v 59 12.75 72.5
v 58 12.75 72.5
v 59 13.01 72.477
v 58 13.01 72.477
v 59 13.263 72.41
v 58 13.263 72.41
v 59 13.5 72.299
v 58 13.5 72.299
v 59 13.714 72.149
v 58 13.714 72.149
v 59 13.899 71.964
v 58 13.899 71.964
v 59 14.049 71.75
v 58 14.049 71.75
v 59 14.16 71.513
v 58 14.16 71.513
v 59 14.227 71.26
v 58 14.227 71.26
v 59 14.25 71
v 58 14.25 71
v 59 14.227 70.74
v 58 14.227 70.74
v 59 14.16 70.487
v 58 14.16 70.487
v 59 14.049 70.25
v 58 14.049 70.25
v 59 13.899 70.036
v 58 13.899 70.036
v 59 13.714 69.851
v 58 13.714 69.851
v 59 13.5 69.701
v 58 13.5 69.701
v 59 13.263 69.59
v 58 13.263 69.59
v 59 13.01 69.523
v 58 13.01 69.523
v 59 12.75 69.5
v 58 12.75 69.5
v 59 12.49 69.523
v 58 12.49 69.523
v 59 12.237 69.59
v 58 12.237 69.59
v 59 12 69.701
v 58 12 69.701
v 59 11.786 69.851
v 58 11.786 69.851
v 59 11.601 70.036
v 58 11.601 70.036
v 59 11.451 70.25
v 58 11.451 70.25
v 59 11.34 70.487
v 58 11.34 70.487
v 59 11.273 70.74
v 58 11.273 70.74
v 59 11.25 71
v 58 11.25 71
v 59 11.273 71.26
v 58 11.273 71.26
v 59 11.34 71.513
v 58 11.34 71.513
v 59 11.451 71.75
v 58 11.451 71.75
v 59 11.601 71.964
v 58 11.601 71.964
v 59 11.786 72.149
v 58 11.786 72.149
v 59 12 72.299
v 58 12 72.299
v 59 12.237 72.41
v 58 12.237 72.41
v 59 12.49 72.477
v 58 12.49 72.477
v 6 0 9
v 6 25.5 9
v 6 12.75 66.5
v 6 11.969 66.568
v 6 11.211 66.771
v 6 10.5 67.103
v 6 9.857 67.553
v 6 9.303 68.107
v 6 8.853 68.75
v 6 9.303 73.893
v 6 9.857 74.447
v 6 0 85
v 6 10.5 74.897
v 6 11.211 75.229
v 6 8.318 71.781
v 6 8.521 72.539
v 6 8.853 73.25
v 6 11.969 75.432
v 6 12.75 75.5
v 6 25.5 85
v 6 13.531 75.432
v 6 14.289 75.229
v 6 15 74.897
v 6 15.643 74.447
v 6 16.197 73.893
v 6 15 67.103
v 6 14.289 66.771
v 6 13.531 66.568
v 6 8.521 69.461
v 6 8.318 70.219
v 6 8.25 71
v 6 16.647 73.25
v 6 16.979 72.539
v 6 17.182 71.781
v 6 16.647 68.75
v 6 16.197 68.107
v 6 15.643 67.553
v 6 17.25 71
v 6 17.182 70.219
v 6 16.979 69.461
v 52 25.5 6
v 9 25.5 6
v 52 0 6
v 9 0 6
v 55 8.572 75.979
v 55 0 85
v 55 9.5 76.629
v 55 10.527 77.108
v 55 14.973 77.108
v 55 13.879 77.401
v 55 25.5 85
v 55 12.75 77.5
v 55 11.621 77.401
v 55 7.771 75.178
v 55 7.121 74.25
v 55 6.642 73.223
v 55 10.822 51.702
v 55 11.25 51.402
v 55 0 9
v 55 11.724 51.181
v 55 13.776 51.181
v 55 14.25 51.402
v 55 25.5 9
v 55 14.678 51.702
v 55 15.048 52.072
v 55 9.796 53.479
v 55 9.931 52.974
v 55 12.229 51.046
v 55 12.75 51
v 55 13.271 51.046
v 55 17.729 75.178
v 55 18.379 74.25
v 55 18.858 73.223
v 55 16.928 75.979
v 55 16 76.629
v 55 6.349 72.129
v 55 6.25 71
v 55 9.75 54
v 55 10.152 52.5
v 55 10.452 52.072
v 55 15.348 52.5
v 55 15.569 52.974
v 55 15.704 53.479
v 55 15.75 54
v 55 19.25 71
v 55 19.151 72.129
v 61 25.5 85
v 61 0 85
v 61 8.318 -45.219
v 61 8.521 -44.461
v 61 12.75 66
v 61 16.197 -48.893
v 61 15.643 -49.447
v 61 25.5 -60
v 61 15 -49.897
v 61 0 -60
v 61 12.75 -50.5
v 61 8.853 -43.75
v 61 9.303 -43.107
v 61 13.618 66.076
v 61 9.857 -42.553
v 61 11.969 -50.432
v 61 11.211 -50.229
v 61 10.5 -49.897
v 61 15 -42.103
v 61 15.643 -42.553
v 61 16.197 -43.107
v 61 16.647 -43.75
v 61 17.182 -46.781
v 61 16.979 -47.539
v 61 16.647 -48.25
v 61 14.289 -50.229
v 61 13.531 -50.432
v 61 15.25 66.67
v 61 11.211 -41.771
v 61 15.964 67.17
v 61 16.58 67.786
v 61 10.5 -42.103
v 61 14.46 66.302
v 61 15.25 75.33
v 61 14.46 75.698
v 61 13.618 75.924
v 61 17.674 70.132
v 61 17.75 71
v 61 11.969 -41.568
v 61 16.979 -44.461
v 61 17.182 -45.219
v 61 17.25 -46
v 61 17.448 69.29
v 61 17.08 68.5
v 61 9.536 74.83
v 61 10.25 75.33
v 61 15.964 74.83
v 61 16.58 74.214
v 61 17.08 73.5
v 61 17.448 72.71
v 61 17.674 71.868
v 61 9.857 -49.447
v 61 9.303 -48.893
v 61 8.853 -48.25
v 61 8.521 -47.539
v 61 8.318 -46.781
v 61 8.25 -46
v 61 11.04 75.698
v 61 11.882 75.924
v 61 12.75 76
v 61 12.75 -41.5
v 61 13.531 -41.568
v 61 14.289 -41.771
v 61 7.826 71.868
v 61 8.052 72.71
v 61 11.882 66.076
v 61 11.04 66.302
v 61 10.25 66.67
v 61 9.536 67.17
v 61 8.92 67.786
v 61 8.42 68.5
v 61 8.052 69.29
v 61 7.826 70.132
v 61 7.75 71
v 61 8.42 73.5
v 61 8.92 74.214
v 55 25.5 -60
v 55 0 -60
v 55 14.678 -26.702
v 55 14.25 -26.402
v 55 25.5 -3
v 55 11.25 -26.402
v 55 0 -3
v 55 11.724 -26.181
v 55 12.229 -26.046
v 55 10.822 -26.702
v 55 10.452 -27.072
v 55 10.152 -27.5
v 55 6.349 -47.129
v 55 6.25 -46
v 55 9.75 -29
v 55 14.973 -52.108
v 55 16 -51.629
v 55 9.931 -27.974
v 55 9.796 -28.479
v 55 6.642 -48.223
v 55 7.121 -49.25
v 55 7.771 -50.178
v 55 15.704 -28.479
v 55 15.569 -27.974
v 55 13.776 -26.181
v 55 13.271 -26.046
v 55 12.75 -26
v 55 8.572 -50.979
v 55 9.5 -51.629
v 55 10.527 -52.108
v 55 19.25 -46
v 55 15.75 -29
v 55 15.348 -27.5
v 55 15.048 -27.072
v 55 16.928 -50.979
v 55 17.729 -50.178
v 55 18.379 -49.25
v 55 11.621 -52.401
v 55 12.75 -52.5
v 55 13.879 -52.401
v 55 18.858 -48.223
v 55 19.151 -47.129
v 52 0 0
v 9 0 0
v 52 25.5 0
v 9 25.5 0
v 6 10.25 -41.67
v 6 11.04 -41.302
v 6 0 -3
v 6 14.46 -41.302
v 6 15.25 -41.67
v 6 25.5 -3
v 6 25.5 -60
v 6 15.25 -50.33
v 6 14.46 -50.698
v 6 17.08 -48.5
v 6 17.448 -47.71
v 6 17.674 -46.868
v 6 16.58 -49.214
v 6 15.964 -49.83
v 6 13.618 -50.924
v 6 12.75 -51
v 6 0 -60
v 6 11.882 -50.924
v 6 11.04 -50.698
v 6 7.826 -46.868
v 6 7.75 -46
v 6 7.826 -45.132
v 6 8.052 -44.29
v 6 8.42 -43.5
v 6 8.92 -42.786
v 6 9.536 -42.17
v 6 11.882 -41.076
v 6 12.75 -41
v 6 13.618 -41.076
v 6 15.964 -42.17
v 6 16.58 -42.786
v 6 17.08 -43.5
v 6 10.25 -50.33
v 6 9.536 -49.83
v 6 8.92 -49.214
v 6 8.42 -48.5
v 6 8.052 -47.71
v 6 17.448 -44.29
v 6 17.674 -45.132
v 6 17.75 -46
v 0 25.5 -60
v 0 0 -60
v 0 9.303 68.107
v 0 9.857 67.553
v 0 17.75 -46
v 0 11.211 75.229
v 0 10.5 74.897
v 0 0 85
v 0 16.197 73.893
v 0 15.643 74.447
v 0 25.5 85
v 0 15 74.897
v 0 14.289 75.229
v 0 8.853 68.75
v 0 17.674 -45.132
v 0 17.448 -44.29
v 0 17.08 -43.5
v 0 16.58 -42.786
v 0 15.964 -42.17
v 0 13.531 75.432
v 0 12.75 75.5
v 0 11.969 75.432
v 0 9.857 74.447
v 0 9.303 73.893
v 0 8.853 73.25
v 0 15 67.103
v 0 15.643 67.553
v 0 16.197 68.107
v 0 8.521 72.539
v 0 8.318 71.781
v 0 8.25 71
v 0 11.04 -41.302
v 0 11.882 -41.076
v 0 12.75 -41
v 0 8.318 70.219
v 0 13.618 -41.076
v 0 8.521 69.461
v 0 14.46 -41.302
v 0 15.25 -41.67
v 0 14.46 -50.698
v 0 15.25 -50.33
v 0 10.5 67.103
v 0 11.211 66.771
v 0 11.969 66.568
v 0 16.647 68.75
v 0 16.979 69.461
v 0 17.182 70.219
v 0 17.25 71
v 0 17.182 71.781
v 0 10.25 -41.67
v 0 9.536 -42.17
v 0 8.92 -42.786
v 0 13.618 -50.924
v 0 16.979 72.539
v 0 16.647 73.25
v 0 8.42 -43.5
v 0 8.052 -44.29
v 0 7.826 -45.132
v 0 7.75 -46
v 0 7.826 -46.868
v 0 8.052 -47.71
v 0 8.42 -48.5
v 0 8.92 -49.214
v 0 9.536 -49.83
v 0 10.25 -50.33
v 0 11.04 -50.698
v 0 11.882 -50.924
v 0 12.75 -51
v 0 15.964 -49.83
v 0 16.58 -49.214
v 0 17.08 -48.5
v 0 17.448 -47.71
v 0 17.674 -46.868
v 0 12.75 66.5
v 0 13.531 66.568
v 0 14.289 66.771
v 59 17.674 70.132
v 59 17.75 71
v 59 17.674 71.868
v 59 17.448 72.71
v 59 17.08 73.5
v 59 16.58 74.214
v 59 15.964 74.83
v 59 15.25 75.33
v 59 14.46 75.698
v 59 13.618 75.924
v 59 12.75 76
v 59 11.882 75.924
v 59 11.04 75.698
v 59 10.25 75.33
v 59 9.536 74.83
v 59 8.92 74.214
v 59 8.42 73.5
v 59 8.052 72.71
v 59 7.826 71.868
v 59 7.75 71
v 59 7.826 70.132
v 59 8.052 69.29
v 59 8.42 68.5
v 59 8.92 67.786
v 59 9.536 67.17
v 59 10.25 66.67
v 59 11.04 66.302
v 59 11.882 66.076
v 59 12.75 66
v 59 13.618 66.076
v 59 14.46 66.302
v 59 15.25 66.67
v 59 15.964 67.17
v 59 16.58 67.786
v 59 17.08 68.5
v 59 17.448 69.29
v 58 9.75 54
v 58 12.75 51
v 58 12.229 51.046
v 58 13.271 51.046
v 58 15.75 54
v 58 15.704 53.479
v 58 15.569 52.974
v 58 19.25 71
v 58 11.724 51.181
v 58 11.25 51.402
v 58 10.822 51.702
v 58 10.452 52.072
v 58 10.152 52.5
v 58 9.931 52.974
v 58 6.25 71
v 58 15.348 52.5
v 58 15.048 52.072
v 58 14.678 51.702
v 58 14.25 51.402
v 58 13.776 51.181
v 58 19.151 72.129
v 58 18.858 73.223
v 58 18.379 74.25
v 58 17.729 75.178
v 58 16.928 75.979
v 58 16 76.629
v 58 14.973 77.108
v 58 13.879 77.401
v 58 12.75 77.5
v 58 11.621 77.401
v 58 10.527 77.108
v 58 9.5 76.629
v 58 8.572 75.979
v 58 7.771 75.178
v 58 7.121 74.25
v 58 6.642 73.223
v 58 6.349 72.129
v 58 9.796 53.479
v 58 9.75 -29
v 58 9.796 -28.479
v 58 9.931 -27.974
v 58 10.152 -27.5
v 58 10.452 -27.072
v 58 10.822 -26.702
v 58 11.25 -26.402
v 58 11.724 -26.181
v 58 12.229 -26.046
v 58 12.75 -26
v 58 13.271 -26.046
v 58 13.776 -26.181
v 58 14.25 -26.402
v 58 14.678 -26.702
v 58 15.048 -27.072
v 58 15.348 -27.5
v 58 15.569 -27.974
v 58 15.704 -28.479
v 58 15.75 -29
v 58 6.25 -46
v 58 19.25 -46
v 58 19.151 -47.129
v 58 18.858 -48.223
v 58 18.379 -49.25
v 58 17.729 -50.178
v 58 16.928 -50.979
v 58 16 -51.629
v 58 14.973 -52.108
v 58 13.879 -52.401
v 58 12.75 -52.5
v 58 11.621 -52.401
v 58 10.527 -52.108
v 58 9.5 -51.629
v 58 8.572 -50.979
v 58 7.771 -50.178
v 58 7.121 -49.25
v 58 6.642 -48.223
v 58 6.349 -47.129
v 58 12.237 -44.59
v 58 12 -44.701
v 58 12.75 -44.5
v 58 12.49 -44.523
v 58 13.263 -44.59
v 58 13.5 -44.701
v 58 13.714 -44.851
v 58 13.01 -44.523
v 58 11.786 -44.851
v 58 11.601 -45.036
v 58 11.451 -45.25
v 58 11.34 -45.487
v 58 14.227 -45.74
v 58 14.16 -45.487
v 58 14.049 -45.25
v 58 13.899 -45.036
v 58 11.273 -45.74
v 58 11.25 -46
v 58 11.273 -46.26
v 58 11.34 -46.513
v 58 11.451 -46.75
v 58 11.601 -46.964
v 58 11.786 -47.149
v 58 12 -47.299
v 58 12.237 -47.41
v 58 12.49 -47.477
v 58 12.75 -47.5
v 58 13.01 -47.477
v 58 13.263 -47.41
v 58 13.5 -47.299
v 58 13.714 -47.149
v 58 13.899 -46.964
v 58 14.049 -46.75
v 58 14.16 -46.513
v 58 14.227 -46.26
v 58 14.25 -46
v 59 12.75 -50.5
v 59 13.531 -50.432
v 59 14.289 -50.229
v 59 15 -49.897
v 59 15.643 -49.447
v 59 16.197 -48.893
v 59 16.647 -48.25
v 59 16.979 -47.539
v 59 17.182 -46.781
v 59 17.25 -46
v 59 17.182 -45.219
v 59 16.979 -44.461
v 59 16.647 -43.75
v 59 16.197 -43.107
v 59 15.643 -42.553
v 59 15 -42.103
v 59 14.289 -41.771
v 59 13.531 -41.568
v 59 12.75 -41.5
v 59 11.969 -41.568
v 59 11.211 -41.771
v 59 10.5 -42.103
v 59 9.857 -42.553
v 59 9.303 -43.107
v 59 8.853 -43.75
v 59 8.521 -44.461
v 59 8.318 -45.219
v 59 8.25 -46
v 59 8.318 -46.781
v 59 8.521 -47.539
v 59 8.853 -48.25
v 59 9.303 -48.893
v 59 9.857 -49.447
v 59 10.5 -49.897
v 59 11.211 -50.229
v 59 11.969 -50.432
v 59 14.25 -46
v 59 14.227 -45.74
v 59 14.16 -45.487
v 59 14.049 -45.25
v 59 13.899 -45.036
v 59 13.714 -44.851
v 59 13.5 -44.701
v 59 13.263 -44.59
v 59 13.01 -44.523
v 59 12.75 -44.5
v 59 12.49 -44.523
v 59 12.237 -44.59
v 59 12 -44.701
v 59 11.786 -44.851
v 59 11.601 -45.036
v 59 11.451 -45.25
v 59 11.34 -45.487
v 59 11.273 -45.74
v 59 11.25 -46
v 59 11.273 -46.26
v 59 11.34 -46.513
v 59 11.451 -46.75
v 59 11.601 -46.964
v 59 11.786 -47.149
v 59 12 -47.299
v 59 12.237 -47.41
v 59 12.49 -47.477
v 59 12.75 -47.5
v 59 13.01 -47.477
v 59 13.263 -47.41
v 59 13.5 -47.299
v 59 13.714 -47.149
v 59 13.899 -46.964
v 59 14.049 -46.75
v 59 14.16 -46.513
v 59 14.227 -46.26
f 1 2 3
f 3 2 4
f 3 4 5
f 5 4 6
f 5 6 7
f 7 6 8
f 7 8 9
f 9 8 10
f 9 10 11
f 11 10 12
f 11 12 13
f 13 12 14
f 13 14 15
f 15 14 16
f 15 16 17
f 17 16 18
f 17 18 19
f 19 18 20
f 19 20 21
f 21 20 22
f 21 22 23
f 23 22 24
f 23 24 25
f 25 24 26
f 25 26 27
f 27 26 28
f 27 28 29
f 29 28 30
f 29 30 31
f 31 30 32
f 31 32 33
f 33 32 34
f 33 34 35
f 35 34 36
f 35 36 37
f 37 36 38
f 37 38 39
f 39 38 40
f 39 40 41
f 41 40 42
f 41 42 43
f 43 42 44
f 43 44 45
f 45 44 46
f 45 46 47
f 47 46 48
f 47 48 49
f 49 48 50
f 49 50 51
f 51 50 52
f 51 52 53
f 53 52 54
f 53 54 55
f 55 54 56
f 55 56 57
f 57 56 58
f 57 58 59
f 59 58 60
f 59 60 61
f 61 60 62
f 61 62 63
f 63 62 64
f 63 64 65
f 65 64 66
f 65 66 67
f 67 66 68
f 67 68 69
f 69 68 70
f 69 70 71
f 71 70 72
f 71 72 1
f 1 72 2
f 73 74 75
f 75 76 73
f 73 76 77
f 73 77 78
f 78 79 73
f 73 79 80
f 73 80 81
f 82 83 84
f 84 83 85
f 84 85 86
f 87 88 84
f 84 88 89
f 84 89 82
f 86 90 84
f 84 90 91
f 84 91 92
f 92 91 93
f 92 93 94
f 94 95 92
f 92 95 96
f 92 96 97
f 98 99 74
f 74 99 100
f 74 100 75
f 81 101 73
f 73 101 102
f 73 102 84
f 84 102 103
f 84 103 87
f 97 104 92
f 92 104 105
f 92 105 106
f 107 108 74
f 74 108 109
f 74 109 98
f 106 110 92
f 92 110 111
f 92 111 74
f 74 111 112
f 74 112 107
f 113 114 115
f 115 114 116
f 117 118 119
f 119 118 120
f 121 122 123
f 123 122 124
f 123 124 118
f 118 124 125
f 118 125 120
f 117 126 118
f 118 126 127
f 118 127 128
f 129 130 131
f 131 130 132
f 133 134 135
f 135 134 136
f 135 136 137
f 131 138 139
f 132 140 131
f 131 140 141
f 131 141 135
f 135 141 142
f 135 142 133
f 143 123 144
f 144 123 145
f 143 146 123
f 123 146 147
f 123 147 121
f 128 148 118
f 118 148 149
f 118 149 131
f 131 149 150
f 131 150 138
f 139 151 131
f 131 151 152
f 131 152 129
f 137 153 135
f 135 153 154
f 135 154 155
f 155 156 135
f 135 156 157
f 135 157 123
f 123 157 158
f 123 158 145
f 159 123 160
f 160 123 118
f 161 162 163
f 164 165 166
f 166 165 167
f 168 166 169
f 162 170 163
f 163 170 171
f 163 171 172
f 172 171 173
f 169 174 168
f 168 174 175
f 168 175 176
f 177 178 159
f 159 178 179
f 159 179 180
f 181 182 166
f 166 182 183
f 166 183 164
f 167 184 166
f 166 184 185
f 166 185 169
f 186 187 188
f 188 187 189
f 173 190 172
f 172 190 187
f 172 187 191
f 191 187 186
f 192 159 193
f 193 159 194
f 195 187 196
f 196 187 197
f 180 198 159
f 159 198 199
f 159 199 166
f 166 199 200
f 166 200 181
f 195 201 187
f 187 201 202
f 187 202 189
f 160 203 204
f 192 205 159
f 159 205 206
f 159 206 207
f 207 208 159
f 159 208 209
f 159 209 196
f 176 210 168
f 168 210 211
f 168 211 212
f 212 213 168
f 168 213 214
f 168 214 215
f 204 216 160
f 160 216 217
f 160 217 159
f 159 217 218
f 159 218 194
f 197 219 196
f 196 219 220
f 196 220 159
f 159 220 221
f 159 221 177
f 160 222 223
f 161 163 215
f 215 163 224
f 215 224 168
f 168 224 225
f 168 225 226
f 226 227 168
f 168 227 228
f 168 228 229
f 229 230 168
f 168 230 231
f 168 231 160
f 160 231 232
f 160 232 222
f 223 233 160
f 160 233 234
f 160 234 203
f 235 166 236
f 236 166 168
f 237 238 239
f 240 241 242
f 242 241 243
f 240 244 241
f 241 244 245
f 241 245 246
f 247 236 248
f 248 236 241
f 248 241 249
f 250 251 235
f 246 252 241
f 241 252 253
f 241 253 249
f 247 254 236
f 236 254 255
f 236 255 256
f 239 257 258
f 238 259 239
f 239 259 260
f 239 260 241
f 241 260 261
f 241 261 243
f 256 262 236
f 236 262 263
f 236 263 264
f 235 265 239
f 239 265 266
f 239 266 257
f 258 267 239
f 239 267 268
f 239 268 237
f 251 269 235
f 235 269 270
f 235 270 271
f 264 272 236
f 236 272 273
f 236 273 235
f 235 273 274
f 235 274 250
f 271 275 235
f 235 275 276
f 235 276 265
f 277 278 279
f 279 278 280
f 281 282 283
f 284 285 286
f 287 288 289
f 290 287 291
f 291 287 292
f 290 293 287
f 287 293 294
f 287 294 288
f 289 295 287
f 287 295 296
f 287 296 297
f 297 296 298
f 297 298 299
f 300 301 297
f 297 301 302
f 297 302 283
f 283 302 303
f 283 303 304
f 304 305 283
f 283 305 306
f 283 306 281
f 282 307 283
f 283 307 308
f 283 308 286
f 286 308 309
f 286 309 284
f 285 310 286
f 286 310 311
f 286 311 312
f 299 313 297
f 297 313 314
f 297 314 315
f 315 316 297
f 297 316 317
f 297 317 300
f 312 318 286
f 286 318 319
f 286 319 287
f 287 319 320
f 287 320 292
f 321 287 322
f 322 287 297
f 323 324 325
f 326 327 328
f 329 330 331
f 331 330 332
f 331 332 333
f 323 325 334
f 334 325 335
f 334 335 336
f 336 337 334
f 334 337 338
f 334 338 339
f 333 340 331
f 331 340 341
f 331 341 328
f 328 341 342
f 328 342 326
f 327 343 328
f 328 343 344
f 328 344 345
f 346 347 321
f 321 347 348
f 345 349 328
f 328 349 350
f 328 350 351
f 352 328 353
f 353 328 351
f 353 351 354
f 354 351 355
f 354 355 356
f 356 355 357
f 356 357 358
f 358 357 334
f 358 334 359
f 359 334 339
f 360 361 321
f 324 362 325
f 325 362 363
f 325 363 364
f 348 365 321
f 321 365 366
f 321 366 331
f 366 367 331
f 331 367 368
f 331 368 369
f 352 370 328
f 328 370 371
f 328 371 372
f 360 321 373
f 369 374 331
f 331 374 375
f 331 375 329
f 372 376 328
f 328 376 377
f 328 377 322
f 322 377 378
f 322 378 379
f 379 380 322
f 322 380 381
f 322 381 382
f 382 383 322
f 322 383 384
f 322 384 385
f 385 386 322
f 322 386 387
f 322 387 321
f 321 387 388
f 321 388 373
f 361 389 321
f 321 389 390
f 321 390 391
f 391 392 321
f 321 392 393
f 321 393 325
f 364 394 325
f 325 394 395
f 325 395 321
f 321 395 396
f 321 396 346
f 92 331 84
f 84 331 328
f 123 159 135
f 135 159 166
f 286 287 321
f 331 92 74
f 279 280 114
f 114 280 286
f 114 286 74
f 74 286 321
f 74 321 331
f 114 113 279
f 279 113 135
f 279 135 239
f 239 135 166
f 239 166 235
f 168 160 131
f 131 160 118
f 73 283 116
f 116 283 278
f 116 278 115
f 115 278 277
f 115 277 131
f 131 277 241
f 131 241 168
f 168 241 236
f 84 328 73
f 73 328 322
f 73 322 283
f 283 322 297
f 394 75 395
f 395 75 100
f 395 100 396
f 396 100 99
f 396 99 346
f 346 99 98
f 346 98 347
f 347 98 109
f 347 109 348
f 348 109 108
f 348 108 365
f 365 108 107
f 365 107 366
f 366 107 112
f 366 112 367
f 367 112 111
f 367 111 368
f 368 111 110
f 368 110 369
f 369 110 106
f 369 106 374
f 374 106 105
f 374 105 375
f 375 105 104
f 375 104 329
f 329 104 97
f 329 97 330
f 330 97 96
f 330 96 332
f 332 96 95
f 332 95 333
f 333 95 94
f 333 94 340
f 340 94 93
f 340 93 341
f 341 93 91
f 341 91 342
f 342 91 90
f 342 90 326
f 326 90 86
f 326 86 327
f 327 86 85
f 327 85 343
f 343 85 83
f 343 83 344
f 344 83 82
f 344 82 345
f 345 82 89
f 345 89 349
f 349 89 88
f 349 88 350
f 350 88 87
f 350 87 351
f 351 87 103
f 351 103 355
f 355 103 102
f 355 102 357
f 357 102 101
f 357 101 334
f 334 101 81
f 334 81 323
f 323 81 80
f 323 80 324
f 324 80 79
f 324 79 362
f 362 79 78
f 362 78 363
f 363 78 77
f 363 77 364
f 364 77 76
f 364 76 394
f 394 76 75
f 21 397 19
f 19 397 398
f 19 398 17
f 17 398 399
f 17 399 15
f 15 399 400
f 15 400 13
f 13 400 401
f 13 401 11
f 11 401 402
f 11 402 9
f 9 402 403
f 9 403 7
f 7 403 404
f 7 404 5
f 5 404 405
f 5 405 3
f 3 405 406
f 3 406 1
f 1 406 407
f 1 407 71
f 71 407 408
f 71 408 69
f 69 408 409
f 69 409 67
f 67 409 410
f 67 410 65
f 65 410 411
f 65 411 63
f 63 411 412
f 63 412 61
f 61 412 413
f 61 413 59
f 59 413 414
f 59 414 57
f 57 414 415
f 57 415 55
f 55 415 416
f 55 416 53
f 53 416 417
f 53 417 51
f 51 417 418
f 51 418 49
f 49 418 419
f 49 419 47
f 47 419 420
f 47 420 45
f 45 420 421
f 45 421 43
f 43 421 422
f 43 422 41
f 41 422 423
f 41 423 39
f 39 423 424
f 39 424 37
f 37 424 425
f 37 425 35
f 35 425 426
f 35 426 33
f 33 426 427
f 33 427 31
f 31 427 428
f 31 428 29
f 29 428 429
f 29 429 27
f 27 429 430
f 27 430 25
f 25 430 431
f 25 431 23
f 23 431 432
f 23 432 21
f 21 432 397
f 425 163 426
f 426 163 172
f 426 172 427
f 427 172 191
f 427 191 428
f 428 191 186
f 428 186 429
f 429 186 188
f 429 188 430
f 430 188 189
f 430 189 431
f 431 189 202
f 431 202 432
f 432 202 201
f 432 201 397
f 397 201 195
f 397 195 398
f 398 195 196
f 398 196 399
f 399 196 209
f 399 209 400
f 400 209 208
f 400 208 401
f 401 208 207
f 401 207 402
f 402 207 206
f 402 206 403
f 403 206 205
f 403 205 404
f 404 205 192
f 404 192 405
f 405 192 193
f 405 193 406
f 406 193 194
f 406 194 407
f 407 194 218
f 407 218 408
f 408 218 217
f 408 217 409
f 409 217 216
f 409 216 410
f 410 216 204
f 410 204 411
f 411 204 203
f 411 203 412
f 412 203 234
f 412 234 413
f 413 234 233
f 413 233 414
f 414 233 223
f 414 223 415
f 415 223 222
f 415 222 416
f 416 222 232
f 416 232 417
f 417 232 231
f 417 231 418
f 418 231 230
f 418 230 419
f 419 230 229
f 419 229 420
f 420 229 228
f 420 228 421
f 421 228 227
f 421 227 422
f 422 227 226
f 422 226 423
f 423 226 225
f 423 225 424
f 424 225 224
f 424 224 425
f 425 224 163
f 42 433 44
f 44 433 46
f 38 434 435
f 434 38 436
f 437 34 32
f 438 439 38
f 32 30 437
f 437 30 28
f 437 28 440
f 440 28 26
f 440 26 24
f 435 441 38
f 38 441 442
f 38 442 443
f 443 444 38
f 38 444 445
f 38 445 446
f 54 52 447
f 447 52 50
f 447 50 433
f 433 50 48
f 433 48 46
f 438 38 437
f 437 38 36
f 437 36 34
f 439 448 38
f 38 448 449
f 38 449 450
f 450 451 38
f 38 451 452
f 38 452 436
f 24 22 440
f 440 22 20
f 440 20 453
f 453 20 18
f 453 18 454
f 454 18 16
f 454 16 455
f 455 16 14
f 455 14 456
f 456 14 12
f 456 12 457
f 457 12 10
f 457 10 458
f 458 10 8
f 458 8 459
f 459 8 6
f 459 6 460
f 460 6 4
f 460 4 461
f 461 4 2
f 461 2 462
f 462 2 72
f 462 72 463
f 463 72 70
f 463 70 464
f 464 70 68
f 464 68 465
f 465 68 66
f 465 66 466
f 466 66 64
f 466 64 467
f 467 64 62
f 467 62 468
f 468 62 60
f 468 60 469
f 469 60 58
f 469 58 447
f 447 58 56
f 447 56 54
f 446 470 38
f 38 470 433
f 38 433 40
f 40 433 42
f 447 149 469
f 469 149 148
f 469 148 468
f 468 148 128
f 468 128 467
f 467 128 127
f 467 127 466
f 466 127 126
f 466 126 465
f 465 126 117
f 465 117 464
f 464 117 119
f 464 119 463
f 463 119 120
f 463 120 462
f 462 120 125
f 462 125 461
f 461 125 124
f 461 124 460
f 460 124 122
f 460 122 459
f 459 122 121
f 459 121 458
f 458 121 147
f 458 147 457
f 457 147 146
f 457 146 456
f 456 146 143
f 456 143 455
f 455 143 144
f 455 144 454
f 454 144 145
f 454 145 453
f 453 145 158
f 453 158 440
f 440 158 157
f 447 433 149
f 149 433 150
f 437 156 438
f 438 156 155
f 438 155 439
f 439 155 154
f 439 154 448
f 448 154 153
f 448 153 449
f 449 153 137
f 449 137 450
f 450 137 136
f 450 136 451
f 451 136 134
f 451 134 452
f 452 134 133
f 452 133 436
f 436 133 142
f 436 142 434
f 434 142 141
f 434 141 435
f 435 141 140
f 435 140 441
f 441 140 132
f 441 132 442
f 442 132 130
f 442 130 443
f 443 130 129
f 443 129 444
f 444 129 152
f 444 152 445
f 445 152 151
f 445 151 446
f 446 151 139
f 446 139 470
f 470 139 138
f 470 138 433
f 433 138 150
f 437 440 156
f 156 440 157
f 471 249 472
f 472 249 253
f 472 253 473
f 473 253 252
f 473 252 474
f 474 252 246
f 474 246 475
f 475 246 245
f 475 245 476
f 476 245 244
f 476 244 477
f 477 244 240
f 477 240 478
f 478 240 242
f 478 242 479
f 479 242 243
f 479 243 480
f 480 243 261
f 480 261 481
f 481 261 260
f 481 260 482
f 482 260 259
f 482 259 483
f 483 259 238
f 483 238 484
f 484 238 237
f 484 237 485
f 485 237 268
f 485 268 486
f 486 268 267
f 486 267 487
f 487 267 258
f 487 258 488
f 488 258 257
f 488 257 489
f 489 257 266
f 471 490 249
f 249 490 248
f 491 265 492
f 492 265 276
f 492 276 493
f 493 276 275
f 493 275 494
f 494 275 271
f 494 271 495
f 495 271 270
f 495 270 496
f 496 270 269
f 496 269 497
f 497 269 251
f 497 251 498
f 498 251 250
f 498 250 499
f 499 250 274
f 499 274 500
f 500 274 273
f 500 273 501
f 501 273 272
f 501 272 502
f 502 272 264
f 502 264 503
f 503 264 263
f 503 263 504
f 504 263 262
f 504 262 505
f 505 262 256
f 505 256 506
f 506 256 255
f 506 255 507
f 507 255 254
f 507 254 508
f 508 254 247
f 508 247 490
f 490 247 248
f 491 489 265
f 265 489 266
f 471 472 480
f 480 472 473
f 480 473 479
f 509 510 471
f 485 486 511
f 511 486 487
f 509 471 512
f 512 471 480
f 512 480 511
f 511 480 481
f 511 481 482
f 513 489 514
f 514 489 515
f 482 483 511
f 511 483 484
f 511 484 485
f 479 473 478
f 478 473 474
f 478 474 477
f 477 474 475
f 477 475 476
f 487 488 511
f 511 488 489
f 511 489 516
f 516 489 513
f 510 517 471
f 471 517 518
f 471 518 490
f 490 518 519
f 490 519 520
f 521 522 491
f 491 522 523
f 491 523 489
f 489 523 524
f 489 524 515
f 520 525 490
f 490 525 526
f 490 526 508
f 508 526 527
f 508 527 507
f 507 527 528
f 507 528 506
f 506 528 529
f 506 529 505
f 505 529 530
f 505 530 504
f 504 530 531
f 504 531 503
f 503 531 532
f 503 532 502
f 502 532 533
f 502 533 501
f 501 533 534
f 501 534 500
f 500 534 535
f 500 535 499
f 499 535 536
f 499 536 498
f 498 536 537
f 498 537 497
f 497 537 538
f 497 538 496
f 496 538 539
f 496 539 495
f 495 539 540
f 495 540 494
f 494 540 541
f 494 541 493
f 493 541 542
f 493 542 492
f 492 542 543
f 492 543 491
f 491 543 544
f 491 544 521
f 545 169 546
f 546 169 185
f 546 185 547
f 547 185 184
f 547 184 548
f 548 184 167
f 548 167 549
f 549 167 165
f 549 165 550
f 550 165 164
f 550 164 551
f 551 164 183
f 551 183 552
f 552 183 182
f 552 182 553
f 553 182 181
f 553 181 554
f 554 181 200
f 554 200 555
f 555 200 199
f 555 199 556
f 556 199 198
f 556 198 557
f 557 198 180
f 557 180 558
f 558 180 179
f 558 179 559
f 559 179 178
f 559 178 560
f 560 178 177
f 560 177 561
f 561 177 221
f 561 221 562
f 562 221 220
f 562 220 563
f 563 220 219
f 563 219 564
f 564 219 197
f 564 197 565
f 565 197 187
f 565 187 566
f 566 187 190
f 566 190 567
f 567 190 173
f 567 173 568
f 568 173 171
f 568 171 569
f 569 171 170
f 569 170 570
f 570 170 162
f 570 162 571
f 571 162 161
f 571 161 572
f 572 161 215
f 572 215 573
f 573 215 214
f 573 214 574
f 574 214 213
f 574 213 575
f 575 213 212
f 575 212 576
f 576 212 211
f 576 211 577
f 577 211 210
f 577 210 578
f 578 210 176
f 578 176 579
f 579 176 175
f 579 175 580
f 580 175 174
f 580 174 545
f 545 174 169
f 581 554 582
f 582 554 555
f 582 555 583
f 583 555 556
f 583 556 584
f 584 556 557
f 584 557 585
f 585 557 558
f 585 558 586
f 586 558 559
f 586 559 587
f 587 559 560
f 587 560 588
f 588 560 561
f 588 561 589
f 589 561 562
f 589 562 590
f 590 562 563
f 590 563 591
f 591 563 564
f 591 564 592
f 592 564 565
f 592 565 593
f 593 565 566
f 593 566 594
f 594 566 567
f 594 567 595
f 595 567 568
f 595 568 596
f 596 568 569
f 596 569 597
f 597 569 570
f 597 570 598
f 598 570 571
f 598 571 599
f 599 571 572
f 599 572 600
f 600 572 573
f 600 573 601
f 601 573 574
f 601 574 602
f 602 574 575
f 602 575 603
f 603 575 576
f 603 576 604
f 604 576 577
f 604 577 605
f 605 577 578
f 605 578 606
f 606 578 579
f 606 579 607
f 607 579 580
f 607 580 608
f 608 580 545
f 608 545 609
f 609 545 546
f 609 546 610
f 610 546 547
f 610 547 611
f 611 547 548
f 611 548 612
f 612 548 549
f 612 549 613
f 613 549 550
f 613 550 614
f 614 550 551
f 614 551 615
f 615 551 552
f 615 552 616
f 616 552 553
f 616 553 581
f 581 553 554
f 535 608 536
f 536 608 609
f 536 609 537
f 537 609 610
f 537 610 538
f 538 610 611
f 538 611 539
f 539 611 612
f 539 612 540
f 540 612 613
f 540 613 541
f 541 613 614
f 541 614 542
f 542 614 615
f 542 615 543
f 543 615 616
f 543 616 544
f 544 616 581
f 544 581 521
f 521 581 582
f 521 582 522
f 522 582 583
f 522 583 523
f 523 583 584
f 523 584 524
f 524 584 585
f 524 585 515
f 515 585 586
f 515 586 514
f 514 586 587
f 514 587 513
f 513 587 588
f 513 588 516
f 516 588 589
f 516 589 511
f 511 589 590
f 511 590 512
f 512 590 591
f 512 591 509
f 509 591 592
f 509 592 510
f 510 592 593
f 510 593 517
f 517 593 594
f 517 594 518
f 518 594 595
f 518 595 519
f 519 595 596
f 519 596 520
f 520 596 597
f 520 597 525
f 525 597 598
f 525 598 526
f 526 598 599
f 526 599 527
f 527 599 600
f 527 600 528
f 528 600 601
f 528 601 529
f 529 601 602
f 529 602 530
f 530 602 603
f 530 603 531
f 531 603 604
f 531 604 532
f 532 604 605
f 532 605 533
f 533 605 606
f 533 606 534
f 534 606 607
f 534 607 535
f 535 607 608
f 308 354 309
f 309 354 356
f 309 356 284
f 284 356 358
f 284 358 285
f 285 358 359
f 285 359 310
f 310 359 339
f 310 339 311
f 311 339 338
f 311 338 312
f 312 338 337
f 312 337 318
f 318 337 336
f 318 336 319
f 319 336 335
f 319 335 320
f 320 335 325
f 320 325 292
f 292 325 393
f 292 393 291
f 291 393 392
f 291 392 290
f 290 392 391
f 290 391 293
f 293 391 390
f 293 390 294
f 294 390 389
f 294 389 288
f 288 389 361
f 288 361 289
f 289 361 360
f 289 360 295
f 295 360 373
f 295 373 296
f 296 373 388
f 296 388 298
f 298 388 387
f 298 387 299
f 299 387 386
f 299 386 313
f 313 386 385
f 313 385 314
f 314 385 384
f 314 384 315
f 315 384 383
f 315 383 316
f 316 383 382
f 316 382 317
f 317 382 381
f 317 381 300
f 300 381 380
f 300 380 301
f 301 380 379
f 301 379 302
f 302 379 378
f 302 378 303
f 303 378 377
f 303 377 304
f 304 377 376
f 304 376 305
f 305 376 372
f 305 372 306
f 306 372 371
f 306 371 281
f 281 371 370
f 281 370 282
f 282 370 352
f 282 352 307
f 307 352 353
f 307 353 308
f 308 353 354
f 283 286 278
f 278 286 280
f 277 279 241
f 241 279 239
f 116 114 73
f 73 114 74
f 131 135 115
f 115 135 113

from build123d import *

# Parameters (mm, degrees)
BOSS_EXTRUDE1_DEPTH     = 25.5
SKETCH2_R               = 4.5
CUT_EXTRUDE1_DEPTH      = 25
SKETCH3_R               = 1.5
CUT_EXTRUDE2_DEPTH      = 10
SKETCH4_R               = 5
CUT_EXTRUDE3_DEPTH      = 2
CUT_EXTRUDE4_DEPTH      = 3
CUT_EXTRUDE5_DEPTH      = 3
SKETCH7_R               = 4.5
CUT_EXTRUDE6_DEPTH      = 2
CUT_EXTRUDE7_DEPTH      = 108.685885798
CUT_EXTRUDE7_DEPTH_BACK = 108.685885798
SKETCH8_R               = 1.5
SKETCH9_R               = 5
CUT_EXTRUDE8_DEPTH      = 10
BOSS_EXTRUDE2_DEPTH     = 25.5


with BuildPart() as part:
    # Sketch1 → Boss-Extrude1 (new body)
    with BuildSketch(Plane(origin=(0, 0, 0), x_dir=(1, 0, 0), z_dir=(0, 1, 0))):
        Polygon((6, -6), (55, -6), (55, -85), (61, -85), (61, 60), (55, 60), (55, 0), (6, 0), (6, 60), (0, 60), (0, -85), (6, -85), align=None)
    extrude(amount=BOSS_EXTRUDE1_DEPTH)

    # Sketch2 → Cut-Extrude1 (cut)
    with BuildSketch(Plane(origin=(6, 0, 0), x_dir=(0, 0, -1), z_dir=(1, 0, 0))):
        with Locations((-71, 12.75)):
            Circle(SKETCH2_R)
    extrude(amount=-CUT_EXTRUDE1_DEPTH, mode=Mode.SUBTRACT)

    # Sketch3 → Cut-Extrude2 (cut)
    with BuildSketch(Plane.ZY.offset(-55)):
        with Locations((71, 12.75)):
            Circle(SKETCH3_R)
    extrude(amount=-CUT_EXTRUDE2_DEPTH, mode=Mode.SUBTRACT)

    # Sketch4 → Cut-Extrude3 (cut)
    with BuildSketch(Plane(origin=(61, 0, 0), x_dir=(0, 0, -1), z_dir=(1, 0, 0))):
        with Locations((-71, 12.75)):
            Circle(SKETCH4_R)
    extrude(amount=-CUT_EXTRUDE3_DEPTH, mode=Mode.SUBTRACT)

    # Sketch5 → Cut-Extrude4 (cut)
    with BuildSketch(Plane.ZY.offset(-55)):
        with BuildLine():
            Line((71, 19.25), (54, 15.75))
            ThreePointArc((54, 15.75), (51, 12.75), (54, 9.75))
            Line((54, 9.75), (71, 6.25))
            ThreePointArc((71, 6.25), (77.5, 12.75), (71, 19.25))
        make_face()
    extrude(amount=-CUT_EXTRUDE4_DEPTH, mode=Mode.SUBTRACT)

    # Sketch6 → Cut-Extrude5 (cut)
    with BuildSketch(Plane.ZY.offset(-55)):
        with BuildLine():
            Line((-29, 9.75), (-46, 6.25))
            ThreePointArc((-46, 6.25), (-52.5, 12.75), (-46, 19.25))
            Line((-46, 19.25), (-29, 15.75))
            ThreePointArc((-29, 15.75), (-26, 12.75), (-29, 9.75))
        make_face()
    extrude(amount=-CUT_EXTRUDE5_DEPTH, mode=Mode.SUBTRACT)

    # Sketch7 → Cut-Extrude6 (cut)
    with BuildSketch(Plane(origin=(61, 0, 0), x_dir=(0, 0, -1), z_dir=(1, 0, 0))):
        with Locations((46, 12.75)):
            Circle(SKETCH7_R)
    extrude(amount=-CUT_EXTRUDE6_DEPTH, mode=Mode.SUBTRACT)

    # Sketch8 → Cut-Extrude7 (cut, two sides: drawn at the far end of the back side and taken through both)
    with BuildSketch(Plane(origin=(61, 0, 0), x_dir=(0, 0, -1), z_dir=(1, 0, 0)).offset(-CUT_EXTRUDE7_DEPTH_BACK)):
        with Locations((46, 12.75)):
            Circle(SKETCH8_R)
    extrude(amount=CUT_EXTRUDE7_DEPTH + CUT_EXTRUDE7_DEPTH_BACK, mode=Mode.SUBTRACT)

    # Sketch9 → Cut-Extrude8 (cut)
    with BuildSketch(Plane.ZY):
        with Locations((-46, 12.75)):
            Circle(SKETCH9_R)
    extrude(amount=-CUT_EXTRUDE8_DEPTH, mode=Mode.SUBTRACT)

    # Sketch10 → Boss-Extrude2 (add)
    with BuildSketch(Plane(origin=(0, 25.5, 0), x_dir=(1, 0, 0), z_dir=(0, 1, 0))):
        Polygon((9, -6), (6, -6), (6, -9), align=None)
        Polygon((6, 0), (6, 3), (9, 0), align=None)
        Polygon((52, 0), (55, 0), (55, 3), align=None)
        Polygon((55, -6), (55, -9), (52, -6), align=None)
    extrude(amount=-BOSS_EXTRUDE2_DEPTH)


solid = part.part
